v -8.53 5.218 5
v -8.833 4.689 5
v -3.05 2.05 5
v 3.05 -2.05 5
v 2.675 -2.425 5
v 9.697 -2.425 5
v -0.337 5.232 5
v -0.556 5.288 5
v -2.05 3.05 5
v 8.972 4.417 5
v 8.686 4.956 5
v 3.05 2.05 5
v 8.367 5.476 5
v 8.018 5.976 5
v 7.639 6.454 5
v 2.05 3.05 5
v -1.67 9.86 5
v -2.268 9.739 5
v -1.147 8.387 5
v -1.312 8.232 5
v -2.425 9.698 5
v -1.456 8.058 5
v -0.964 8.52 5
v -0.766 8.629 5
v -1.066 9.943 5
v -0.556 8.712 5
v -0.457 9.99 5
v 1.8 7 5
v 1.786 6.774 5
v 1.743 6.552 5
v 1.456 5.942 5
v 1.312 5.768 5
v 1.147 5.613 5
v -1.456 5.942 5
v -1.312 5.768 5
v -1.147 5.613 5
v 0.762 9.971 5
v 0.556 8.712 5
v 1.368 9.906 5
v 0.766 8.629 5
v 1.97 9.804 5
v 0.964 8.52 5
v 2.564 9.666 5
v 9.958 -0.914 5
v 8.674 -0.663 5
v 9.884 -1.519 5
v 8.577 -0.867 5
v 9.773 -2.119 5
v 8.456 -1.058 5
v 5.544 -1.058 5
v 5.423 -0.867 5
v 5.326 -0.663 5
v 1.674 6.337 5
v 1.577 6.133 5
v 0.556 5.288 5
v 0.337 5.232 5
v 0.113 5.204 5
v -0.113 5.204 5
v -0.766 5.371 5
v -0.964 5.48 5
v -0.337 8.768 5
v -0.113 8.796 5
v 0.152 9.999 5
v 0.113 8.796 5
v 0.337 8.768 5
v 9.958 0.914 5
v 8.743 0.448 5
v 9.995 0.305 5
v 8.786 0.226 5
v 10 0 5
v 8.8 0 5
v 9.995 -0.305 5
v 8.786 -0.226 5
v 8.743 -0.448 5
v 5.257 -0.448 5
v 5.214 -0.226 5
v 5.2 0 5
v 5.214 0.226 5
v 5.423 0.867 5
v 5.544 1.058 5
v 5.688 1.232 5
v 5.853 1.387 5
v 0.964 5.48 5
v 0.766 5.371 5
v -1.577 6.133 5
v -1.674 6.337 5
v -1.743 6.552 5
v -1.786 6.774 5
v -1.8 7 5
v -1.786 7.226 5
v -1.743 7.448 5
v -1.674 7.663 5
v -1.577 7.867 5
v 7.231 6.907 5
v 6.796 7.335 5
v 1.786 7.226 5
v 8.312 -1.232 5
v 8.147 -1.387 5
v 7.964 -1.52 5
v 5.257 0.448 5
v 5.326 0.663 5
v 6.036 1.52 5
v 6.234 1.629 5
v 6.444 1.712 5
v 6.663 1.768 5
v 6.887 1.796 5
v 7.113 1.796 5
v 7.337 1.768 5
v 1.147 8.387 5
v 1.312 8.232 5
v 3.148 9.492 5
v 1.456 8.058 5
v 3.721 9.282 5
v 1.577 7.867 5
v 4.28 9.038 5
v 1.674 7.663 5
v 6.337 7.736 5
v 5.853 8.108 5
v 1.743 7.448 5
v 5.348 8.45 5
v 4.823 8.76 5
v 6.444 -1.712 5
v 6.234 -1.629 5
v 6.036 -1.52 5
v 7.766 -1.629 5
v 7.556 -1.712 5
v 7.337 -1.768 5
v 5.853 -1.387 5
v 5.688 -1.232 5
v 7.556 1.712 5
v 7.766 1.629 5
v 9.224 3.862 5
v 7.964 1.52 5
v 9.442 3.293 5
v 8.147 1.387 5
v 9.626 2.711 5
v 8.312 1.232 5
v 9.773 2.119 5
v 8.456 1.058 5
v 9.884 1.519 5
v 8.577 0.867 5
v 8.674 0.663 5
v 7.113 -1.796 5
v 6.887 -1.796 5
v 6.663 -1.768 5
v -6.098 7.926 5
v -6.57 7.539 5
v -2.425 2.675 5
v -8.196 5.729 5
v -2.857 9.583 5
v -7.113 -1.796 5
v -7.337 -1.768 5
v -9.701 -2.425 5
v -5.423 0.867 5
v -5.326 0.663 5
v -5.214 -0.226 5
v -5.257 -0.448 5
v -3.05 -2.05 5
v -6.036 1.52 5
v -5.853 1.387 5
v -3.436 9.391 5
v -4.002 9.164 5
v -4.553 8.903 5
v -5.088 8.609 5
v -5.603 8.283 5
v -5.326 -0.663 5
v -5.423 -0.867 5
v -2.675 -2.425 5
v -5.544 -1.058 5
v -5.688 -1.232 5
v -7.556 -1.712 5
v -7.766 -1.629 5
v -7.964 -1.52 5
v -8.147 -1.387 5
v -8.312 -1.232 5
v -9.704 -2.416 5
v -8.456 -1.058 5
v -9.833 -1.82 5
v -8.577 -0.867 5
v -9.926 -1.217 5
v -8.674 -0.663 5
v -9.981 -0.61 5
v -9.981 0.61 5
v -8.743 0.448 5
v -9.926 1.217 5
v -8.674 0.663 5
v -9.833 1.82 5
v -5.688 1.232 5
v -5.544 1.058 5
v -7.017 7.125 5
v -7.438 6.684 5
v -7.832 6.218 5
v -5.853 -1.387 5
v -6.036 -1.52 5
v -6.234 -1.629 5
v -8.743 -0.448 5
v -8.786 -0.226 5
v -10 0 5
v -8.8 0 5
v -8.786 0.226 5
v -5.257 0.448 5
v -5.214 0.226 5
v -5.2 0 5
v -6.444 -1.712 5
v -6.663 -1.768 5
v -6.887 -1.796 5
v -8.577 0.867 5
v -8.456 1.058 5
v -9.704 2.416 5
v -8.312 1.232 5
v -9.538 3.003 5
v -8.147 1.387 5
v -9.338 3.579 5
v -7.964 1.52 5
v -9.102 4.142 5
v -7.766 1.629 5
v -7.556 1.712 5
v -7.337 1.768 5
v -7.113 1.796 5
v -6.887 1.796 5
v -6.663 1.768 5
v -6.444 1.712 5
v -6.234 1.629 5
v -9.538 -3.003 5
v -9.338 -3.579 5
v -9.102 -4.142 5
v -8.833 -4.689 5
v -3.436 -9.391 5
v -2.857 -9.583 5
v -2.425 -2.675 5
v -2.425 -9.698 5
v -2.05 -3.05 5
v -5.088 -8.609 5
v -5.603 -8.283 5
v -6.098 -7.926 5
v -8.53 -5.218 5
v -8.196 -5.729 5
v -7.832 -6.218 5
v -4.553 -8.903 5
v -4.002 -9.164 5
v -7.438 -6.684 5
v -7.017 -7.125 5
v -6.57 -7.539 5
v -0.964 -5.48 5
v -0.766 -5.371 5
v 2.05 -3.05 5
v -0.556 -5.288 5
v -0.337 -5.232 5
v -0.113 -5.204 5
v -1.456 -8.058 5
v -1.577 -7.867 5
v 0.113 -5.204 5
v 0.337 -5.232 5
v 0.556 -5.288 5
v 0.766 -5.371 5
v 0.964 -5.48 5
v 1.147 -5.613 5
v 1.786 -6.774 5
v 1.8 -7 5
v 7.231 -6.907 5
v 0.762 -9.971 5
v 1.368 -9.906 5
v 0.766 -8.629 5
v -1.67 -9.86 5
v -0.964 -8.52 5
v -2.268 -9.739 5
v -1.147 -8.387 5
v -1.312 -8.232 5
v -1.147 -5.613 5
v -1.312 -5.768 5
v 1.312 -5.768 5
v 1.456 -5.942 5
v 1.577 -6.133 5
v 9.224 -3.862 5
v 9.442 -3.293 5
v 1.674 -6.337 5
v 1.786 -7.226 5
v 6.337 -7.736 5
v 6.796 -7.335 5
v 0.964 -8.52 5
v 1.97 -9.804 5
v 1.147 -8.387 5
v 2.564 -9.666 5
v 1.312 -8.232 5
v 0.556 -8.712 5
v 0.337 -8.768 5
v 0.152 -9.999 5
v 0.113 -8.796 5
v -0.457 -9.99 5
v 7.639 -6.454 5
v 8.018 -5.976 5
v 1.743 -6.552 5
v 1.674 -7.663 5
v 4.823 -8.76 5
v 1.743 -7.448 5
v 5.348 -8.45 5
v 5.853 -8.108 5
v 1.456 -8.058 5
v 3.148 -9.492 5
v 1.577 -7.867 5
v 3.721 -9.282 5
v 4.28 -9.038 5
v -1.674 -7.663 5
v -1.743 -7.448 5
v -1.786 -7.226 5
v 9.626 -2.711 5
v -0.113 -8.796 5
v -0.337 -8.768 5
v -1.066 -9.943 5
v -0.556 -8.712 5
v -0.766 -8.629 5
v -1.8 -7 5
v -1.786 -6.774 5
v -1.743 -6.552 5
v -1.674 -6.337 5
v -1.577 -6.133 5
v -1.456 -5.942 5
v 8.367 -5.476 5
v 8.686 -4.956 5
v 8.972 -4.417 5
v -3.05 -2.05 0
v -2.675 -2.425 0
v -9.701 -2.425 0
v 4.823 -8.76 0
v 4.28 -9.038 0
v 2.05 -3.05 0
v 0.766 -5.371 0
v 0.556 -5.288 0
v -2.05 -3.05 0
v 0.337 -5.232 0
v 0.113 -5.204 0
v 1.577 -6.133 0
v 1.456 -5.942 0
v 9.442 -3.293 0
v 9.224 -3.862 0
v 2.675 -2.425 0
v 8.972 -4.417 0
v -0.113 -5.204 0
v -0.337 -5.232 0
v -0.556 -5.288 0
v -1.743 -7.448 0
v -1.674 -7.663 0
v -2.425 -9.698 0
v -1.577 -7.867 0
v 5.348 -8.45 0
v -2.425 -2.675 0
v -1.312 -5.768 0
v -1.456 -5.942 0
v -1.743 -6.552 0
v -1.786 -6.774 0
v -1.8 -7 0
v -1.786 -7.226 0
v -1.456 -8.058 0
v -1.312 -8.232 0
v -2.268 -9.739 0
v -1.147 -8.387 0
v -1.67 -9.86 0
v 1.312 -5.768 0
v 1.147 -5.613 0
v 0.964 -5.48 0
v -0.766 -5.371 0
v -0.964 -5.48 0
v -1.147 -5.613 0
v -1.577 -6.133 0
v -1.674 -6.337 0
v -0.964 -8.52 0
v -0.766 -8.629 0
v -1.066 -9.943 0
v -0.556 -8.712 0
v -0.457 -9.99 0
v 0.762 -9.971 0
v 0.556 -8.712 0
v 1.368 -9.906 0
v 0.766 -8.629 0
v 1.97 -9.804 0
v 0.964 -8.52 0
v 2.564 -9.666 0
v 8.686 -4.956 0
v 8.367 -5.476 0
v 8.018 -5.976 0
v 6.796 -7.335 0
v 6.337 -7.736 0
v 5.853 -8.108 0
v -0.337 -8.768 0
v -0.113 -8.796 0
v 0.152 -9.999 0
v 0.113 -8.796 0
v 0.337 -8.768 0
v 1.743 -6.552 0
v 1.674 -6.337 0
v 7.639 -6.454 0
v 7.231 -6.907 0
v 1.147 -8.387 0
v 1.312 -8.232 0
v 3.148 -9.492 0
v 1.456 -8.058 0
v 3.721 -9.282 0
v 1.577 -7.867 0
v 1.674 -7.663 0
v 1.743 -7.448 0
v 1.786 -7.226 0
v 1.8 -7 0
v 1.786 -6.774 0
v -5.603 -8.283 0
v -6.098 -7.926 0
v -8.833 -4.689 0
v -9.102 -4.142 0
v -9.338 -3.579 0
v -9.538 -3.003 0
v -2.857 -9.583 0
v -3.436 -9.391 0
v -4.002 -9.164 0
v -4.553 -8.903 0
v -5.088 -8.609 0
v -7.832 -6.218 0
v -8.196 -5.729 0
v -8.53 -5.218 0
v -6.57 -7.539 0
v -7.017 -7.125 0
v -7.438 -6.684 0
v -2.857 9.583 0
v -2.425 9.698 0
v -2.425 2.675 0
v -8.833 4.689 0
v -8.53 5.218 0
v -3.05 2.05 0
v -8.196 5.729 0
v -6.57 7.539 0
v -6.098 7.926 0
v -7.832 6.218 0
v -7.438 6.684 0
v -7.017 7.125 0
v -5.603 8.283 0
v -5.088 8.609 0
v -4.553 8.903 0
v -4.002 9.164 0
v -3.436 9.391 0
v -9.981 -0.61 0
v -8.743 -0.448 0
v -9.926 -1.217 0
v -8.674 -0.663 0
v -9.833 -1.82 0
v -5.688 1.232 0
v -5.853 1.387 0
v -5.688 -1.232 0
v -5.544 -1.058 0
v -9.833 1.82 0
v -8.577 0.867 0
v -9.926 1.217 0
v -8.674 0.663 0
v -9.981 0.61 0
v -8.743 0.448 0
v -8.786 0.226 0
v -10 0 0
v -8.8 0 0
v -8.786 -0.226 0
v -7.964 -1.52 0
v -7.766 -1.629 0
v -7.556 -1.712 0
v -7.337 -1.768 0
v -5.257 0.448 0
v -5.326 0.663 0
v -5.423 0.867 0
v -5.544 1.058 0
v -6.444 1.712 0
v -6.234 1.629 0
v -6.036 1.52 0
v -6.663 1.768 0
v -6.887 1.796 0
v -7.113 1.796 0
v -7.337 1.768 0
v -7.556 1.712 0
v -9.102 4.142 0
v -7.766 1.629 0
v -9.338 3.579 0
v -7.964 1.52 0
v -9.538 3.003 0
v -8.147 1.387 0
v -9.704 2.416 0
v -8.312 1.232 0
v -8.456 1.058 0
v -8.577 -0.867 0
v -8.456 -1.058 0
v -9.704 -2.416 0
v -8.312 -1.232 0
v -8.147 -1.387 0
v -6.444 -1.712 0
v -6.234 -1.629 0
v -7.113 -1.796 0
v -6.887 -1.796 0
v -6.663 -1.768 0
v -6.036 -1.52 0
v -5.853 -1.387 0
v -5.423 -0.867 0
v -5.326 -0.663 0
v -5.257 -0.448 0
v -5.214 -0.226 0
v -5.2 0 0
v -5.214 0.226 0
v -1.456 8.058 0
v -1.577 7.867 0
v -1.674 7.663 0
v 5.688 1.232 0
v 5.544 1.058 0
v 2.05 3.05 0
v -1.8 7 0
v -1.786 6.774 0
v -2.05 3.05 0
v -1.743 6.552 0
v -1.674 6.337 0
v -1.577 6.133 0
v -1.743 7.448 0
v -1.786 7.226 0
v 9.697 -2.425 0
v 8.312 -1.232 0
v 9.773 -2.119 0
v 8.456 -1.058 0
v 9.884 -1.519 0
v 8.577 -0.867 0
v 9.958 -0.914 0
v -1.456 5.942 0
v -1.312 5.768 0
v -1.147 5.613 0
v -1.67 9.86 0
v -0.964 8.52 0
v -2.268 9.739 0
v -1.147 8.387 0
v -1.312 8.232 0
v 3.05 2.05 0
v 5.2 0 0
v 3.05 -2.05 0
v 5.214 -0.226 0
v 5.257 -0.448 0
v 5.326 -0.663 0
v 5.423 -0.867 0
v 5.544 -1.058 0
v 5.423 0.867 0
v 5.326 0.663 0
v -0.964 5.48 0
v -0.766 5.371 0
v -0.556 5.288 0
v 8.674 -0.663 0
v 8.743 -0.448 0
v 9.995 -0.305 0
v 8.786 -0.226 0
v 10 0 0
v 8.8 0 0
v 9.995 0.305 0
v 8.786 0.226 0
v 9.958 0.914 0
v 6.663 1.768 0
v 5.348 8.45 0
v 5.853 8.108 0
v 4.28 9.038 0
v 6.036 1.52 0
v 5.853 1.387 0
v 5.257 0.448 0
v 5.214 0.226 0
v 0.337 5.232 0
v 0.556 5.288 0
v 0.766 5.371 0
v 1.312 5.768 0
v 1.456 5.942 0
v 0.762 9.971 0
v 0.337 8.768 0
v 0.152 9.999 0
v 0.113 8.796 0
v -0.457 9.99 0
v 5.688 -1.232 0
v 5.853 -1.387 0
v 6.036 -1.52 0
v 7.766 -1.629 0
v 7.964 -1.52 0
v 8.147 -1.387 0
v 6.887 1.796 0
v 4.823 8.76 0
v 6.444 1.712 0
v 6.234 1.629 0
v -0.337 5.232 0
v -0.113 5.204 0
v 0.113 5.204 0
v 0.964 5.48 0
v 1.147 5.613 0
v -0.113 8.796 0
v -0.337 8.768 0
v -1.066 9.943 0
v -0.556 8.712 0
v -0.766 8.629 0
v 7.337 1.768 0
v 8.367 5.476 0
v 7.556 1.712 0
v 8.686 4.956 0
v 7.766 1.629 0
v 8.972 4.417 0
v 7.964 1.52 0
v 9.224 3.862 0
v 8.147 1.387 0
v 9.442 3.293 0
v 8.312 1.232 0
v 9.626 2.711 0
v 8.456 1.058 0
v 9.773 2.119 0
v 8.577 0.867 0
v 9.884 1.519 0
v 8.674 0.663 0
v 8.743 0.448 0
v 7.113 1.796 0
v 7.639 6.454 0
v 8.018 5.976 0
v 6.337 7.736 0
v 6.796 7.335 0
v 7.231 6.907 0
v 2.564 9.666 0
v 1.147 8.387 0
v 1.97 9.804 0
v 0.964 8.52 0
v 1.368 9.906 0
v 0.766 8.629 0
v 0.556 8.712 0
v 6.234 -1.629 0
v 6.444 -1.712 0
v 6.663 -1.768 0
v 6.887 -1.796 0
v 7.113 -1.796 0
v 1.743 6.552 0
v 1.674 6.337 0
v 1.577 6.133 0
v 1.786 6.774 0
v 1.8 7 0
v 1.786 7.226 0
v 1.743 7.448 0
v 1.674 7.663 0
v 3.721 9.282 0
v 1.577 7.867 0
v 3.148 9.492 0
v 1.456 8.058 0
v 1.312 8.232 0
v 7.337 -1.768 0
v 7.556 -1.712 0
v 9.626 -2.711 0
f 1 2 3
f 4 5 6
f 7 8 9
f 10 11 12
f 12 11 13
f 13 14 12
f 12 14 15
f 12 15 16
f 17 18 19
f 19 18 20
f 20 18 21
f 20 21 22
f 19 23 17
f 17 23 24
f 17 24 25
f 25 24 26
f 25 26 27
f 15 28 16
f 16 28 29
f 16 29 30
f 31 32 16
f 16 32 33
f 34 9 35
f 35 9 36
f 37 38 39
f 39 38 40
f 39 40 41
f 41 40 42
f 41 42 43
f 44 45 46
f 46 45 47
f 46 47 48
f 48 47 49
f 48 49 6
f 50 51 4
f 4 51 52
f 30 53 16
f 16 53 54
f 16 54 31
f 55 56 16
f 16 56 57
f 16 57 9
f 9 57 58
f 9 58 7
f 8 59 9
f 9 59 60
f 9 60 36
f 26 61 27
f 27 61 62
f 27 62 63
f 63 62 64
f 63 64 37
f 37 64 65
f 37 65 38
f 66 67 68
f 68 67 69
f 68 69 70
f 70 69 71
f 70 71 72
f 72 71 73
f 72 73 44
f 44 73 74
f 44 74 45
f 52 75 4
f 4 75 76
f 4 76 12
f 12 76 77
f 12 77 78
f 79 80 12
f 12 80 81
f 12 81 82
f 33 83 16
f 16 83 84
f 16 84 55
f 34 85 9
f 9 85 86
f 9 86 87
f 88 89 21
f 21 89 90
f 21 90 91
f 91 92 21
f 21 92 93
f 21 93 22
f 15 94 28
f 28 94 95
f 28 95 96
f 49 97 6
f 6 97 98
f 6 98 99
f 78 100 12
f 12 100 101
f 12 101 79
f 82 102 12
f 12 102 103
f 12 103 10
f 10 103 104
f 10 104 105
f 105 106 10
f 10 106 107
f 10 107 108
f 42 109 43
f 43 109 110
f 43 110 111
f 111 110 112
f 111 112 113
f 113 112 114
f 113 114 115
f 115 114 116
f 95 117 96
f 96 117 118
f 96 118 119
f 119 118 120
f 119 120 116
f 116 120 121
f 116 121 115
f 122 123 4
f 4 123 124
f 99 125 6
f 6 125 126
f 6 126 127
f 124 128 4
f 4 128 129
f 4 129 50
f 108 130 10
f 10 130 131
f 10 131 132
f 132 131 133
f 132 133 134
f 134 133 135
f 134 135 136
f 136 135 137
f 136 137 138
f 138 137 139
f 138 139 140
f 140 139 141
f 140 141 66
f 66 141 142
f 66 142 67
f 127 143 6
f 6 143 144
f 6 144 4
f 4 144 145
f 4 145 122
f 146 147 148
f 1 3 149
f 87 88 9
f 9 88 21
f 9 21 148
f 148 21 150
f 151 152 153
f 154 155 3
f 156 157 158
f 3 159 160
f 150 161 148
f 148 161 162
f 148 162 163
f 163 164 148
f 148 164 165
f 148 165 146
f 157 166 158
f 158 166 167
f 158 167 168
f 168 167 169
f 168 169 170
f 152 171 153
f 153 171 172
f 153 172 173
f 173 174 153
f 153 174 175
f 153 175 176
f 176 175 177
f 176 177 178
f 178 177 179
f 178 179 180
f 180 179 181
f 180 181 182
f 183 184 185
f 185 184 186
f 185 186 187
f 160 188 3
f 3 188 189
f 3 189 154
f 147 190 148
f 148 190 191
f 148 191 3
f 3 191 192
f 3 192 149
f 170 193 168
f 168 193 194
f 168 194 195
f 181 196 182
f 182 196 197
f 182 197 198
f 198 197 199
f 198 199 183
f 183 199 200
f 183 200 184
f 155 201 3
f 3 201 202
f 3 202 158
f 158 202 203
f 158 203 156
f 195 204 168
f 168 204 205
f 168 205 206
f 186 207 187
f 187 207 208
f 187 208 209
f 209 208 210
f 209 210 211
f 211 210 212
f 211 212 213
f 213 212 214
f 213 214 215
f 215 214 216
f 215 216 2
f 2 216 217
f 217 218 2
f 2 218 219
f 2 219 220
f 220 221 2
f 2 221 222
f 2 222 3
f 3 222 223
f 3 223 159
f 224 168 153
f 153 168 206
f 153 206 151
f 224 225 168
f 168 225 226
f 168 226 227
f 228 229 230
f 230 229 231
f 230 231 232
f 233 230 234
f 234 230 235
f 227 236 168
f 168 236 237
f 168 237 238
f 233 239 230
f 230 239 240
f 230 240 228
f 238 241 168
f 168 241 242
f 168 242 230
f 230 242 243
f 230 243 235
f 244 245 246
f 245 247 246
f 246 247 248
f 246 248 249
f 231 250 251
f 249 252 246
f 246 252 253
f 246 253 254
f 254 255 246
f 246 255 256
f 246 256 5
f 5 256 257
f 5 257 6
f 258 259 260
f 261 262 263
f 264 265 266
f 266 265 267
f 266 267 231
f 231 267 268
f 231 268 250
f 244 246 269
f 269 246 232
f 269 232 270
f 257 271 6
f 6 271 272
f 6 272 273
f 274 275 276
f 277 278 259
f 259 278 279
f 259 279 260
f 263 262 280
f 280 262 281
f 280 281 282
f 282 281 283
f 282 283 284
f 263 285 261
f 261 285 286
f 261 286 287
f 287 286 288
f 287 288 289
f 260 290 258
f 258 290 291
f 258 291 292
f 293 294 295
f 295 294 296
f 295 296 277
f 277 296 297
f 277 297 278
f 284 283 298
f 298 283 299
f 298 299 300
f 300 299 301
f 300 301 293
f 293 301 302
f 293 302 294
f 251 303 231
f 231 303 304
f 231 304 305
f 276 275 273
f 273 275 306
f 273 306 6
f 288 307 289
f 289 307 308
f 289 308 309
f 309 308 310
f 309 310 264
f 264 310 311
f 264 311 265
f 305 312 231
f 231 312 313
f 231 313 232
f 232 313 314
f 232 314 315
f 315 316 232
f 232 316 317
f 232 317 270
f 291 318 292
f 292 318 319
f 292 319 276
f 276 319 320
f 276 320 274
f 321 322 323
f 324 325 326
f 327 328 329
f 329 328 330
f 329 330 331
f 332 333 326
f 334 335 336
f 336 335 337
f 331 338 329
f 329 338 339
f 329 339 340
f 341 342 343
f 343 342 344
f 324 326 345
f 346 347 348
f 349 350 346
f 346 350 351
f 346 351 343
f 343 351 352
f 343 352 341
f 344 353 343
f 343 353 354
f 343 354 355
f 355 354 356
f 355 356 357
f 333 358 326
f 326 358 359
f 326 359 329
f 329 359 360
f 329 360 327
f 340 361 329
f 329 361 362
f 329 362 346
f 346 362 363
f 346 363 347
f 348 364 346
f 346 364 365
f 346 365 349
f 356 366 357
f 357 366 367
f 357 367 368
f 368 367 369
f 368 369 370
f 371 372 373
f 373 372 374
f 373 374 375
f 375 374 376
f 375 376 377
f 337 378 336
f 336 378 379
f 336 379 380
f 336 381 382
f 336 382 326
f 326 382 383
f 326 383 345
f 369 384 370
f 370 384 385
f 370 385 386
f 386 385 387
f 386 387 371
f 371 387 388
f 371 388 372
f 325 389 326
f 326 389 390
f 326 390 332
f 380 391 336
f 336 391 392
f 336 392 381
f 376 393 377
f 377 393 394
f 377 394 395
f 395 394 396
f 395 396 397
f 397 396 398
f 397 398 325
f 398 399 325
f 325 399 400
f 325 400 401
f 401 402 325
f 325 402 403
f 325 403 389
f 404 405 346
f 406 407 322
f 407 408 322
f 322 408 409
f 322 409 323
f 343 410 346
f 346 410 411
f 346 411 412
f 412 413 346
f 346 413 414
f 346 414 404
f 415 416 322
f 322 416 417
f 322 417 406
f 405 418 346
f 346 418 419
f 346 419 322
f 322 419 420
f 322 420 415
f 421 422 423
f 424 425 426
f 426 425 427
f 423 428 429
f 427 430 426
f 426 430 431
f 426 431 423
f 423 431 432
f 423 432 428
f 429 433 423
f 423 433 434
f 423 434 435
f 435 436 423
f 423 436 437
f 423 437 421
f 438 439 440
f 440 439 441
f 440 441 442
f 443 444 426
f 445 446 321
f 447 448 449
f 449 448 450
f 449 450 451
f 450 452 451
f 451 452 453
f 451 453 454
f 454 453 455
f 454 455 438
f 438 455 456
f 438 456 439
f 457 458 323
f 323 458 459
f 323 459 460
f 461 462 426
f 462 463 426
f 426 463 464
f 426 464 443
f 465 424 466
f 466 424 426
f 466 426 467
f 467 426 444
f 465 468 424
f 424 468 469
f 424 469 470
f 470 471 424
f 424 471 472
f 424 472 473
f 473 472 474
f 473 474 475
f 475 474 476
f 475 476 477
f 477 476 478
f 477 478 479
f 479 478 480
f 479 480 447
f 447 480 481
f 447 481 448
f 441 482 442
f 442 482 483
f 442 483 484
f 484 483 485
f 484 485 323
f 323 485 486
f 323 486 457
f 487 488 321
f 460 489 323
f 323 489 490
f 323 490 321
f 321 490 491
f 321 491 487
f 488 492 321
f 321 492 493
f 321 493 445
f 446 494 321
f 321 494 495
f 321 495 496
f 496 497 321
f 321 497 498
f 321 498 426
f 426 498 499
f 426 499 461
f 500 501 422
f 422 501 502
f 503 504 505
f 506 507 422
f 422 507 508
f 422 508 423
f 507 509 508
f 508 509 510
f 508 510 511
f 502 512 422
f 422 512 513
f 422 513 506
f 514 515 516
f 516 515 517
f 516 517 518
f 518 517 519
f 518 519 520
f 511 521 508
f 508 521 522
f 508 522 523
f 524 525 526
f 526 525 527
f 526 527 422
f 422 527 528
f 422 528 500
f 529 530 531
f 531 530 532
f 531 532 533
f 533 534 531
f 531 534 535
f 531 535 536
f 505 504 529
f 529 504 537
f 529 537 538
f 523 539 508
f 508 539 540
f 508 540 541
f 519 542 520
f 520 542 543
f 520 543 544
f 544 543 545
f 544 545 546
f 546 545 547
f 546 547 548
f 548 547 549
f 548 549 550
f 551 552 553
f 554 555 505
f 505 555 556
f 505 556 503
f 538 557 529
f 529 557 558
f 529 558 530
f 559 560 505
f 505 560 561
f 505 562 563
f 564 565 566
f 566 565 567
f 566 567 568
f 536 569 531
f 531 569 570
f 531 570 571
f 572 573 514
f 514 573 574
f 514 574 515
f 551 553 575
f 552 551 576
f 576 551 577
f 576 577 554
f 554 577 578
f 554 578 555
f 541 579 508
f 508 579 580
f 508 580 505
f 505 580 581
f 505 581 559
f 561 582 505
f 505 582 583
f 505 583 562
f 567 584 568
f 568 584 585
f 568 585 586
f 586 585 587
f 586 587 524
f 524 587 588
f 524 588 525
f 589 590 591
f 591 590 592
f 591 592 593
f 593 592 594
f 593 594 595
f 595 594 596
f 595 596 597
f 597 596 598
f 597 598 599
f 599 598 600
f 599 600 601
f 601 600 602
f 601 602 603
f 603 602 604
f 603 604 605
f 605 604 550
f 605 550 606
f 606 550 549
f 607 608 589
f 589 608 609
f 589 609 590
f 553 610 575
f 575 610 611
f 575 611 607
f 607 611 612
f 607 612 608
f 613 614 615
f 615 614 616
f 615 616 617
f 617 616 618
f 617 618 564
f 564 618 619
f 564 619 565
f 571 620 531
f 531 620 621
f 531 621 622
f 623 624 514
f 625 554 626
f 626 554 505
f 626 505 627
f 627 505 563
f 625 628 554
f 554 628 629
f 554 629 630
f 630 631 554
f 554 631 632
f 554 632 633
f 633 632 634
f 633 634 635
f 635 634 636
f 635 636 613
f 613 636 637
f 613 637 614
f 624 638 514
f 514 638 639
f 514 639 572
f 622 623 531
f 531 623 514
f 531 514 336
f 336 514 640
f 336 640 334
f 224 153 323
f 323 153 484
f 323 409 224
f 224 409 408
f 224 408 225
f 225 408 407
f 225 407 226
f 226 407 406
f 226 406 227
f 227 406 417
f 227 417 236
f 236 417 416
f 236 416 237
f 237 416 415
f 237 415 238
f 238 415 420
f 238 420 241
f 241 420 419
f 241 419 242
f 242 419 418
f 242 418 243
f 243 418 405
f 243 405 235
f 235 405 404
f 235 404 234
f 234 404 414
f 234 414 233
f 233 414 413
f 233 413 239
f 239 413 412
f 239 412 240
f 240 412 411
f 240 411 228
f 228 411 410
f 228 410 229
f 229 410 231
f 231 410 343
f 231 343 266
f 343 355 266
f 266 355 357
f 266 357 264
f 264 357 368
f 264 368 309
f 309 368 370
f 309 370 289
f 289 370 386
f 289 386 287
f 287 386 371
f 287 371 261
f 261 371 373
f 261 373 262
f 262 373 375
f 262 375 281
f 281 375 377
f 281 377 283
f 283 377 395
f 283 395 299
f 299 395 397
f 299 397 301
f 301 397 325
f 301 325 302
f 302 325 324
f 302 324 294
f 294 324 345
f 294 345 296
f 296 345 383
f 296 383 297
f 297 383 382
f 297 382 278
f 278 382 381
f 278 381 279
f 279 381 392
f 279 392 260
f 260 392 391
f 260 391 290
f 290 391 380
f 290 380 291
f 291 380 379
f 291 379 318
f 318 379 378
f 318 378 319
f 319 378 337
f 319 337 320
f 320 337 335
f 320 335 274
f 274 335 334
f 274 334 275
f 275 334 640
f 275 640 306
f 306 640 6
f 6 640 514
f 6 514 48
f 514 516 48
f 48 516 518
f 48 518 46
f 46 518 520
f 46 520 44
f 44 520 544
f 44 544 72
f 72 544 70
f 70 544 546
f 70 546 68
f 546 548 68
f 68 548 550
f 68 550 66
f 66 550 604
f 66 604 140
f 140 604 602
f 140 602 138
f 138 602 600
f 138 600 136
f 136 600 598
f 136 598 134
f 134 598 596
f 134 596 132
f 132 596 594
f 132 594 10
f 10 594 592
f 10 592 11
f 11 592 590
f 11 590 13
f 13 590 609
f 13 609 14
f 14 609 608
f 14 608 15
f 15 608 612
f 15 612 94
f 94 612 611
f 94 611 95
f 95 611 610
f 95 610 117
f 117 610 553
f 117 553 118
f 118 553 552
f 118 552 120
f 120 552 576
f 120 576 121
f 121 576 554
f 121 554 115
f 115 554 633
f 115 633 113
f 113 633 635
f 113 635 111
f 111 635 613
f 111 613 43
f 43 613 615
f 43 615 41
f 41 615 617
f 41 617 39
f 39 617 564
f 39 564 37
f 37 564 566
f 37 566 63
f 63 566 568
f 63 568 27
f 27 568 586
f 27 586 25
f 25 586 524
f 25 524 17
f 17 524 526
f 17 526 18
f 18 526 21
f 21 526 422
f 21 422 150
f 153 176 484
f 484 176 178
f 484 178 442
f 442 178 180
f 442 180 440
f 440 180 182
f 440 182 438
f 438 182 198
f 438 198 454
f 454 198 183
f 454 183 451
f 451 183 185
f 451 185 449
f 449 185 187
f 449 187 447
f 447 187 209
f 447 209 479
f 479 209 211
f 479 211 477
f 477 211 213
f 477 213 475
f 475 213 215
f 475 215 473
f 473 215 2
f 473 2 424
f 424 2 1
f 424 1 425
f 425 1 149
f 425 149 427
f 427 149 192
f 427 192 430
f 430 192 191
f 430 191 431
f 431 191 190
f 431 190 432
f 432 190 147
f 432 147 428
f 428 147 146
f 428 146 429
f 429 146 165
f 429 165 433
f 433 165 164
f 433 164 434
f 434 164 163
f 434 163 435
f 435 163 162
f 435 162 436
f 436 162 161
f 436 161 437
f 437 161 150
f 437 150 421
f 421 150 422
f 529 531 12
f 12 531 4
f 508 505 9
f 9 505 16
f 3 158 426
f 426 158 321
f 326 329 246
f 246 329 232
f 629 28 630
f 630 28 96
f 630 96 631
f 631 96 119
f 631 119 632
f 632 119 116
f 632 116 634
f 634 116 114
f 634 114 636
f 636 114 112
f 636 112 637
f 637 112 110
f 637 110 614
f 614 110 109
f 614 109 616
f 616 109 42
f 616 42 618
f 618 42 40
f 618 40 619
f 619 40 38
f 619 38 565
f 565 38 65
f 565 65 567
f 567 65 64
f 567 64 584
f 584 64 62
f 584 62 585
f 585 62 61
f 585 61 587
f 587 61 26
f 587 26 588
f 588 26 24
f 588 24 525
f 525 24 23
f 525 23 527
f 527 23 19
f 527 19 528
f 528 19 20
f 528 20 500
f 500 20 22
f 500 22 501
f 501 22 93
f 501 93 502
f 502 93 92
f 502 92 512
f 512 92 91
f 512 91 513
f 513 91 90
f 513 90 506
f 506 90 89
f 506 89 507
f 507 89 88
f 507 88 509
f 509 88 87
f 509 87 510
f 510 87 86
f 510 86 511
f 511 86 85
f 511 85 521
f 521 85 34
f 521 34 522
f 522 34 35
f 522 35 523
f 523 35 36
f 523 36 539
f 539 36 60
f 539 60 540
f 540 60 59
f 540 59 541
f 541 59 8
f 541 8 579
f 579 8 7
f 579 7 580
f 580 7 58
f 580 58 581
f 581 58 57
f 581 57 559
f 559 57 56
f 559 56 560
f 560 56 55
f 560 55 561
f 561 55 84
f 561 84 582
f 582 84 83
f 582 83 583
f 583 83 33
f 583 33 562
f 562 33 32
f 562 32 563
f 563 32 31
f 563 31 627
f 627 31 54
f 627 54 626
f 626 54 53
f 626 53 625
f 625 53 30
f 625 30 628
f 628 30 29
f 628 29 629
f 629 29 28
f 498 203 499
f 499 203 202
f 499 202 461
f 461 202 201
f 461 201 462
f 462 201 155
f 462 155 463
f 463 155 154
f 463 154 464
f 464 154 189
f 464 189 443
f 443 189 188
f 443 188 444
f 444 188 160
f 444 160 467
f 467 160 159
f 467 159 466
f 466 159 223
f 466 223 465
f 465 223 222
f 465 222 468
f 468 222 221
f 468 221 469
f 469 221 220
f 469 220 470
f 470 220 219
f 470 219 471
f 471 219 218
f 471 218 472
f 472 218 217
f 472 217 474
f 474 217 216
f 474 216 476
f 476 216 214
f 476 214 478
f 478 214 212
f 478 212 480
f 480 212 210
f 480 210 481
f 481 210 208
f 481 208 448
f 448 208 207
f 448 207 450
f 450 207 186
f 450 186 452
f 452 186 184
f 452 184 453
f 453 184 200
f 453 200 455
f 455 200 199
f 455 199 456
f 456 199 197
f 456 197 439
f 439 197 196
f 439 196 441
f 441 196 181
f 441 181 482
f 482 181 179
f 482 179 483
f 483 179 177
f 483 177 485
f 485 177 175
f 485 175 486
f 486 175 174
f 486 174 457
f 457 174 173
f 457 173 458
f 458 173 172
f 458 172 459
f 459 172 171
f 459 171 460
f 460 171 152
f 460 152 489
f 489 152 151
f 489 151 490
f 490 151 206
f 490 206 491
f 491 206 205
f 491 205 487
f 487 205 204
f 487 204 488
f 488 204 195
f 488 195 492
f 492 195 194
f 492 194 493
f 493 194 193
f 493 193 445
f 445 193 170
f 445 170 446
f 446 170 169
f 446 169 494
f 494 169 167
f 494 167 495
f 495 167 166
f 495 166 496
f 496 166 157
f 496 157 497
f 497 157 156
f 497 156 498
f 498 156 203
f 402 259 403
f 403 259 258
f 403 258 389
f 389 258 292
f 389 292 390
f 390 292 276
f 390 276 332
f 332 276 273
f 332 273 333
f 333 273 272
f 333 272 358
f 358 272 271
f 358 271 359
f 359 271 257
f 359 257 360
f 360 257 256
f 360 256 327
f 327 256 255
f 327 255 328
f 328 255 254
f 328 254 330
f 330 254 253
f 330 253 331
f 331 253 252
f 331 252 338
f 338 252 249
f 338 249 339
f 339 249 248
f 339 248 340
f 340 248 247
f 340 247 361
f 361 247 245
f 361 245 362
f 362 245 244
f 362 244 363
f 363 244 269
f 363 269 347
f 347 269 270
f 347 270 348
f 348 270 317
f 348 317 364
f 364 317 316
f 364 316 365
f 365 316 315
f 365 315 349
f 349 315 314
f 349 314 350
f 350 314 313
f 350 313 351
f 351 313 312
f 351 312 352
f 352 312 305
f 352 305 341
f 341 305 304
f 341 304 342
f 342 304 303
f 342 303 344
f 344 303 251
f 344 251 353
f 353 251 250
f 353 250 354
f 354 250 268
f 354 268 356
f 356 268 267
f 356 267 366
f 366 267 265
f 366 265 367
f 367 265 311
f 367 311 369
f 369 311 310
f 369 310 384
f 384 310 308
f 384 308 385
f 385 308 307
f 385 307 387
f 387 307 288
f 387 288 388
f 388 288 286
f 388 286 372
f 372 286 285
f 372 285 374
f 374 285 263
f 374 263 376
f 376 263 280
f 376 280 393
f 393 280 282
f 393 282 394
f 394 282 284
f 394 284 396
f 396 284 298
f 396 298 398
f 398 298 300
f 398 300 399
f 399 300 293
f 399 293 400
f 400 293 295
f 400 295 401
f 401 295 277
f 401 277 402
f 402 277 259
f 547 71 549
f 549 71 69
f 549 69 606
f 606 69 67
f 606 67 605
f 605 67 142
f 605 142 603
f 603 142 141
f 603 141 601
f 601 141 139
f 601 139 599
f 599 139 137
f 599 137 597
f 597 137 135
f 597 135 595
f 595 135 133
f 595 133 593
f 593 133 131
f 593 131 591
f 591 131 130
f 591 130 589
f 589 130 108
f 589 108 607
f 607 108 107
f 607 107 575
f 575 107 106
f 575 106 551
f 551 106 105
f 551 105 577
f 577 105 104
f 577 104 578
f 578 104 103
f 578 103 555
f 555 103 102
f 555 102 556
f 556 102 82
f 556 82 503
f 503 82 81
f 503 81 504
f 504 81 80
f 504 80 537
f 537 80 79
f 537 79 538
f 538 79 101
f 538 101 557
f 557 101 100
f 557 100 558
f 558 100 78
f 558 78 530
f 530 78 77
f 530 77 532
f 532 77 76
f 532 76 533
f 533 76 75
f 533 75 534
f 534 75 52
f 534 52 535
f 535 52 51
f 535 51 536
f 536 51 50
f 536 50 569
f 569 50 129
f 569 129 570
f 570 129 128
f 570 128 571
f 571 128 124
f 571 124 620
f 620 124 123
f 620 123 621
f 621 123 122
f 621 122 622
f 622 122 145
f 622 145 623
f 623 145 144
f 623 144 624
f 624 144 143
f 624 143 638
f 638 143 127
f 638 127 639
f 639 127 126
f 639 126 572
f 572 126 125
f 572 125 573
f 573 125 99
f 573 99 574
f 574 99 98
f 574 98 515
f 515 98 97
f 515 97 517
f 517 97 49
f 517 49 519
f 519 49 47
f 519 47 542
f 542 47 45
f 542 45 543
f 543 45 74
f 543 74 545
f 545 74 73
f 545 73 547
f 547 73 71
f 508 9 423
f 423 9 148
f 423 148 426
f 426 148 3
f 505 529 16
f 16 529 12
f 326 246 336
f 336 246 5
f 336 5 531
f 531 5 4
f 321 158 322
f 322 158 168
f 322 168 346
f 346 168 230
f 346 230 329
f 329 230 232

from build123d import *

# Parameters (mm, degrees)
ESQUISSE1_R                  = 10
ESQUISSE1_W                  = 6.1
ESQUISSE1_H                  = 6.1
BOSS_EXTRU_1_DEPTH           = 5
ESQUISSE2_R                  = 1.8
ENL_V_MAT_EXTRU_1_DEPTH      = 1
ENL_V_MAT_EXTRU_1_DEPTH_BACK = 6
CHANFREIN1_SIZE              = 1


with BuildPart() as part:
    # Esquisse1 → Boss.-Extru.1 (new body)
    with BuildSketch(Plane.XY):
        Circle(ESQUISSE1_R)
        Rectangle(ESQUISSE1_W, ESQUISSE1_H, mode=Mode.SUBTRACT)
    extrude(amount=BOSS_EXTRU_1_DEPTH)

    # Esquisse2 → Enlèv. mat.-Extru.1 (cut, two sides)
    with BuildSketch(Plane.XY.offset(5)) as enl_v_mat_extru_1_sk:
        with Locations((0, 7)):
            Circle(ESQUISSE2_R)
        with Locations((7, 0)):
            Circle(ESQUISSE2_R)
        with Locations((0, -7)):
            Circle(ESQUISSE2_R)
        with Locations((-7, 0)):
            Circle(ESQUISSE2_R)
    extrude(amount=ENL_V_MAT_EXTRU_1_DEPTH, mode=Mode.SUBTRACT)
    extrude(enl_v_mat_extru_1_sk.sketch, amount=-ENL_V_MAT_EXTRU_1_DEPTH_BACK, mode=Mode.SUBTRACT)

    # Chanfrein1
    chanfrein1_edges = [part.edges().sort_by_distance(p)[0] for p in [
        (3.05, -3.05, 2.5),
        (3.05, 3.05, 2.5),
        (-3.05, 3.05, 2.5),
        (-3.05, -3.05, 2.5),
    ]]
    chamfer(chanfrein1_edges, length=CHANFREIN1_SIZE)


solid = part.part
